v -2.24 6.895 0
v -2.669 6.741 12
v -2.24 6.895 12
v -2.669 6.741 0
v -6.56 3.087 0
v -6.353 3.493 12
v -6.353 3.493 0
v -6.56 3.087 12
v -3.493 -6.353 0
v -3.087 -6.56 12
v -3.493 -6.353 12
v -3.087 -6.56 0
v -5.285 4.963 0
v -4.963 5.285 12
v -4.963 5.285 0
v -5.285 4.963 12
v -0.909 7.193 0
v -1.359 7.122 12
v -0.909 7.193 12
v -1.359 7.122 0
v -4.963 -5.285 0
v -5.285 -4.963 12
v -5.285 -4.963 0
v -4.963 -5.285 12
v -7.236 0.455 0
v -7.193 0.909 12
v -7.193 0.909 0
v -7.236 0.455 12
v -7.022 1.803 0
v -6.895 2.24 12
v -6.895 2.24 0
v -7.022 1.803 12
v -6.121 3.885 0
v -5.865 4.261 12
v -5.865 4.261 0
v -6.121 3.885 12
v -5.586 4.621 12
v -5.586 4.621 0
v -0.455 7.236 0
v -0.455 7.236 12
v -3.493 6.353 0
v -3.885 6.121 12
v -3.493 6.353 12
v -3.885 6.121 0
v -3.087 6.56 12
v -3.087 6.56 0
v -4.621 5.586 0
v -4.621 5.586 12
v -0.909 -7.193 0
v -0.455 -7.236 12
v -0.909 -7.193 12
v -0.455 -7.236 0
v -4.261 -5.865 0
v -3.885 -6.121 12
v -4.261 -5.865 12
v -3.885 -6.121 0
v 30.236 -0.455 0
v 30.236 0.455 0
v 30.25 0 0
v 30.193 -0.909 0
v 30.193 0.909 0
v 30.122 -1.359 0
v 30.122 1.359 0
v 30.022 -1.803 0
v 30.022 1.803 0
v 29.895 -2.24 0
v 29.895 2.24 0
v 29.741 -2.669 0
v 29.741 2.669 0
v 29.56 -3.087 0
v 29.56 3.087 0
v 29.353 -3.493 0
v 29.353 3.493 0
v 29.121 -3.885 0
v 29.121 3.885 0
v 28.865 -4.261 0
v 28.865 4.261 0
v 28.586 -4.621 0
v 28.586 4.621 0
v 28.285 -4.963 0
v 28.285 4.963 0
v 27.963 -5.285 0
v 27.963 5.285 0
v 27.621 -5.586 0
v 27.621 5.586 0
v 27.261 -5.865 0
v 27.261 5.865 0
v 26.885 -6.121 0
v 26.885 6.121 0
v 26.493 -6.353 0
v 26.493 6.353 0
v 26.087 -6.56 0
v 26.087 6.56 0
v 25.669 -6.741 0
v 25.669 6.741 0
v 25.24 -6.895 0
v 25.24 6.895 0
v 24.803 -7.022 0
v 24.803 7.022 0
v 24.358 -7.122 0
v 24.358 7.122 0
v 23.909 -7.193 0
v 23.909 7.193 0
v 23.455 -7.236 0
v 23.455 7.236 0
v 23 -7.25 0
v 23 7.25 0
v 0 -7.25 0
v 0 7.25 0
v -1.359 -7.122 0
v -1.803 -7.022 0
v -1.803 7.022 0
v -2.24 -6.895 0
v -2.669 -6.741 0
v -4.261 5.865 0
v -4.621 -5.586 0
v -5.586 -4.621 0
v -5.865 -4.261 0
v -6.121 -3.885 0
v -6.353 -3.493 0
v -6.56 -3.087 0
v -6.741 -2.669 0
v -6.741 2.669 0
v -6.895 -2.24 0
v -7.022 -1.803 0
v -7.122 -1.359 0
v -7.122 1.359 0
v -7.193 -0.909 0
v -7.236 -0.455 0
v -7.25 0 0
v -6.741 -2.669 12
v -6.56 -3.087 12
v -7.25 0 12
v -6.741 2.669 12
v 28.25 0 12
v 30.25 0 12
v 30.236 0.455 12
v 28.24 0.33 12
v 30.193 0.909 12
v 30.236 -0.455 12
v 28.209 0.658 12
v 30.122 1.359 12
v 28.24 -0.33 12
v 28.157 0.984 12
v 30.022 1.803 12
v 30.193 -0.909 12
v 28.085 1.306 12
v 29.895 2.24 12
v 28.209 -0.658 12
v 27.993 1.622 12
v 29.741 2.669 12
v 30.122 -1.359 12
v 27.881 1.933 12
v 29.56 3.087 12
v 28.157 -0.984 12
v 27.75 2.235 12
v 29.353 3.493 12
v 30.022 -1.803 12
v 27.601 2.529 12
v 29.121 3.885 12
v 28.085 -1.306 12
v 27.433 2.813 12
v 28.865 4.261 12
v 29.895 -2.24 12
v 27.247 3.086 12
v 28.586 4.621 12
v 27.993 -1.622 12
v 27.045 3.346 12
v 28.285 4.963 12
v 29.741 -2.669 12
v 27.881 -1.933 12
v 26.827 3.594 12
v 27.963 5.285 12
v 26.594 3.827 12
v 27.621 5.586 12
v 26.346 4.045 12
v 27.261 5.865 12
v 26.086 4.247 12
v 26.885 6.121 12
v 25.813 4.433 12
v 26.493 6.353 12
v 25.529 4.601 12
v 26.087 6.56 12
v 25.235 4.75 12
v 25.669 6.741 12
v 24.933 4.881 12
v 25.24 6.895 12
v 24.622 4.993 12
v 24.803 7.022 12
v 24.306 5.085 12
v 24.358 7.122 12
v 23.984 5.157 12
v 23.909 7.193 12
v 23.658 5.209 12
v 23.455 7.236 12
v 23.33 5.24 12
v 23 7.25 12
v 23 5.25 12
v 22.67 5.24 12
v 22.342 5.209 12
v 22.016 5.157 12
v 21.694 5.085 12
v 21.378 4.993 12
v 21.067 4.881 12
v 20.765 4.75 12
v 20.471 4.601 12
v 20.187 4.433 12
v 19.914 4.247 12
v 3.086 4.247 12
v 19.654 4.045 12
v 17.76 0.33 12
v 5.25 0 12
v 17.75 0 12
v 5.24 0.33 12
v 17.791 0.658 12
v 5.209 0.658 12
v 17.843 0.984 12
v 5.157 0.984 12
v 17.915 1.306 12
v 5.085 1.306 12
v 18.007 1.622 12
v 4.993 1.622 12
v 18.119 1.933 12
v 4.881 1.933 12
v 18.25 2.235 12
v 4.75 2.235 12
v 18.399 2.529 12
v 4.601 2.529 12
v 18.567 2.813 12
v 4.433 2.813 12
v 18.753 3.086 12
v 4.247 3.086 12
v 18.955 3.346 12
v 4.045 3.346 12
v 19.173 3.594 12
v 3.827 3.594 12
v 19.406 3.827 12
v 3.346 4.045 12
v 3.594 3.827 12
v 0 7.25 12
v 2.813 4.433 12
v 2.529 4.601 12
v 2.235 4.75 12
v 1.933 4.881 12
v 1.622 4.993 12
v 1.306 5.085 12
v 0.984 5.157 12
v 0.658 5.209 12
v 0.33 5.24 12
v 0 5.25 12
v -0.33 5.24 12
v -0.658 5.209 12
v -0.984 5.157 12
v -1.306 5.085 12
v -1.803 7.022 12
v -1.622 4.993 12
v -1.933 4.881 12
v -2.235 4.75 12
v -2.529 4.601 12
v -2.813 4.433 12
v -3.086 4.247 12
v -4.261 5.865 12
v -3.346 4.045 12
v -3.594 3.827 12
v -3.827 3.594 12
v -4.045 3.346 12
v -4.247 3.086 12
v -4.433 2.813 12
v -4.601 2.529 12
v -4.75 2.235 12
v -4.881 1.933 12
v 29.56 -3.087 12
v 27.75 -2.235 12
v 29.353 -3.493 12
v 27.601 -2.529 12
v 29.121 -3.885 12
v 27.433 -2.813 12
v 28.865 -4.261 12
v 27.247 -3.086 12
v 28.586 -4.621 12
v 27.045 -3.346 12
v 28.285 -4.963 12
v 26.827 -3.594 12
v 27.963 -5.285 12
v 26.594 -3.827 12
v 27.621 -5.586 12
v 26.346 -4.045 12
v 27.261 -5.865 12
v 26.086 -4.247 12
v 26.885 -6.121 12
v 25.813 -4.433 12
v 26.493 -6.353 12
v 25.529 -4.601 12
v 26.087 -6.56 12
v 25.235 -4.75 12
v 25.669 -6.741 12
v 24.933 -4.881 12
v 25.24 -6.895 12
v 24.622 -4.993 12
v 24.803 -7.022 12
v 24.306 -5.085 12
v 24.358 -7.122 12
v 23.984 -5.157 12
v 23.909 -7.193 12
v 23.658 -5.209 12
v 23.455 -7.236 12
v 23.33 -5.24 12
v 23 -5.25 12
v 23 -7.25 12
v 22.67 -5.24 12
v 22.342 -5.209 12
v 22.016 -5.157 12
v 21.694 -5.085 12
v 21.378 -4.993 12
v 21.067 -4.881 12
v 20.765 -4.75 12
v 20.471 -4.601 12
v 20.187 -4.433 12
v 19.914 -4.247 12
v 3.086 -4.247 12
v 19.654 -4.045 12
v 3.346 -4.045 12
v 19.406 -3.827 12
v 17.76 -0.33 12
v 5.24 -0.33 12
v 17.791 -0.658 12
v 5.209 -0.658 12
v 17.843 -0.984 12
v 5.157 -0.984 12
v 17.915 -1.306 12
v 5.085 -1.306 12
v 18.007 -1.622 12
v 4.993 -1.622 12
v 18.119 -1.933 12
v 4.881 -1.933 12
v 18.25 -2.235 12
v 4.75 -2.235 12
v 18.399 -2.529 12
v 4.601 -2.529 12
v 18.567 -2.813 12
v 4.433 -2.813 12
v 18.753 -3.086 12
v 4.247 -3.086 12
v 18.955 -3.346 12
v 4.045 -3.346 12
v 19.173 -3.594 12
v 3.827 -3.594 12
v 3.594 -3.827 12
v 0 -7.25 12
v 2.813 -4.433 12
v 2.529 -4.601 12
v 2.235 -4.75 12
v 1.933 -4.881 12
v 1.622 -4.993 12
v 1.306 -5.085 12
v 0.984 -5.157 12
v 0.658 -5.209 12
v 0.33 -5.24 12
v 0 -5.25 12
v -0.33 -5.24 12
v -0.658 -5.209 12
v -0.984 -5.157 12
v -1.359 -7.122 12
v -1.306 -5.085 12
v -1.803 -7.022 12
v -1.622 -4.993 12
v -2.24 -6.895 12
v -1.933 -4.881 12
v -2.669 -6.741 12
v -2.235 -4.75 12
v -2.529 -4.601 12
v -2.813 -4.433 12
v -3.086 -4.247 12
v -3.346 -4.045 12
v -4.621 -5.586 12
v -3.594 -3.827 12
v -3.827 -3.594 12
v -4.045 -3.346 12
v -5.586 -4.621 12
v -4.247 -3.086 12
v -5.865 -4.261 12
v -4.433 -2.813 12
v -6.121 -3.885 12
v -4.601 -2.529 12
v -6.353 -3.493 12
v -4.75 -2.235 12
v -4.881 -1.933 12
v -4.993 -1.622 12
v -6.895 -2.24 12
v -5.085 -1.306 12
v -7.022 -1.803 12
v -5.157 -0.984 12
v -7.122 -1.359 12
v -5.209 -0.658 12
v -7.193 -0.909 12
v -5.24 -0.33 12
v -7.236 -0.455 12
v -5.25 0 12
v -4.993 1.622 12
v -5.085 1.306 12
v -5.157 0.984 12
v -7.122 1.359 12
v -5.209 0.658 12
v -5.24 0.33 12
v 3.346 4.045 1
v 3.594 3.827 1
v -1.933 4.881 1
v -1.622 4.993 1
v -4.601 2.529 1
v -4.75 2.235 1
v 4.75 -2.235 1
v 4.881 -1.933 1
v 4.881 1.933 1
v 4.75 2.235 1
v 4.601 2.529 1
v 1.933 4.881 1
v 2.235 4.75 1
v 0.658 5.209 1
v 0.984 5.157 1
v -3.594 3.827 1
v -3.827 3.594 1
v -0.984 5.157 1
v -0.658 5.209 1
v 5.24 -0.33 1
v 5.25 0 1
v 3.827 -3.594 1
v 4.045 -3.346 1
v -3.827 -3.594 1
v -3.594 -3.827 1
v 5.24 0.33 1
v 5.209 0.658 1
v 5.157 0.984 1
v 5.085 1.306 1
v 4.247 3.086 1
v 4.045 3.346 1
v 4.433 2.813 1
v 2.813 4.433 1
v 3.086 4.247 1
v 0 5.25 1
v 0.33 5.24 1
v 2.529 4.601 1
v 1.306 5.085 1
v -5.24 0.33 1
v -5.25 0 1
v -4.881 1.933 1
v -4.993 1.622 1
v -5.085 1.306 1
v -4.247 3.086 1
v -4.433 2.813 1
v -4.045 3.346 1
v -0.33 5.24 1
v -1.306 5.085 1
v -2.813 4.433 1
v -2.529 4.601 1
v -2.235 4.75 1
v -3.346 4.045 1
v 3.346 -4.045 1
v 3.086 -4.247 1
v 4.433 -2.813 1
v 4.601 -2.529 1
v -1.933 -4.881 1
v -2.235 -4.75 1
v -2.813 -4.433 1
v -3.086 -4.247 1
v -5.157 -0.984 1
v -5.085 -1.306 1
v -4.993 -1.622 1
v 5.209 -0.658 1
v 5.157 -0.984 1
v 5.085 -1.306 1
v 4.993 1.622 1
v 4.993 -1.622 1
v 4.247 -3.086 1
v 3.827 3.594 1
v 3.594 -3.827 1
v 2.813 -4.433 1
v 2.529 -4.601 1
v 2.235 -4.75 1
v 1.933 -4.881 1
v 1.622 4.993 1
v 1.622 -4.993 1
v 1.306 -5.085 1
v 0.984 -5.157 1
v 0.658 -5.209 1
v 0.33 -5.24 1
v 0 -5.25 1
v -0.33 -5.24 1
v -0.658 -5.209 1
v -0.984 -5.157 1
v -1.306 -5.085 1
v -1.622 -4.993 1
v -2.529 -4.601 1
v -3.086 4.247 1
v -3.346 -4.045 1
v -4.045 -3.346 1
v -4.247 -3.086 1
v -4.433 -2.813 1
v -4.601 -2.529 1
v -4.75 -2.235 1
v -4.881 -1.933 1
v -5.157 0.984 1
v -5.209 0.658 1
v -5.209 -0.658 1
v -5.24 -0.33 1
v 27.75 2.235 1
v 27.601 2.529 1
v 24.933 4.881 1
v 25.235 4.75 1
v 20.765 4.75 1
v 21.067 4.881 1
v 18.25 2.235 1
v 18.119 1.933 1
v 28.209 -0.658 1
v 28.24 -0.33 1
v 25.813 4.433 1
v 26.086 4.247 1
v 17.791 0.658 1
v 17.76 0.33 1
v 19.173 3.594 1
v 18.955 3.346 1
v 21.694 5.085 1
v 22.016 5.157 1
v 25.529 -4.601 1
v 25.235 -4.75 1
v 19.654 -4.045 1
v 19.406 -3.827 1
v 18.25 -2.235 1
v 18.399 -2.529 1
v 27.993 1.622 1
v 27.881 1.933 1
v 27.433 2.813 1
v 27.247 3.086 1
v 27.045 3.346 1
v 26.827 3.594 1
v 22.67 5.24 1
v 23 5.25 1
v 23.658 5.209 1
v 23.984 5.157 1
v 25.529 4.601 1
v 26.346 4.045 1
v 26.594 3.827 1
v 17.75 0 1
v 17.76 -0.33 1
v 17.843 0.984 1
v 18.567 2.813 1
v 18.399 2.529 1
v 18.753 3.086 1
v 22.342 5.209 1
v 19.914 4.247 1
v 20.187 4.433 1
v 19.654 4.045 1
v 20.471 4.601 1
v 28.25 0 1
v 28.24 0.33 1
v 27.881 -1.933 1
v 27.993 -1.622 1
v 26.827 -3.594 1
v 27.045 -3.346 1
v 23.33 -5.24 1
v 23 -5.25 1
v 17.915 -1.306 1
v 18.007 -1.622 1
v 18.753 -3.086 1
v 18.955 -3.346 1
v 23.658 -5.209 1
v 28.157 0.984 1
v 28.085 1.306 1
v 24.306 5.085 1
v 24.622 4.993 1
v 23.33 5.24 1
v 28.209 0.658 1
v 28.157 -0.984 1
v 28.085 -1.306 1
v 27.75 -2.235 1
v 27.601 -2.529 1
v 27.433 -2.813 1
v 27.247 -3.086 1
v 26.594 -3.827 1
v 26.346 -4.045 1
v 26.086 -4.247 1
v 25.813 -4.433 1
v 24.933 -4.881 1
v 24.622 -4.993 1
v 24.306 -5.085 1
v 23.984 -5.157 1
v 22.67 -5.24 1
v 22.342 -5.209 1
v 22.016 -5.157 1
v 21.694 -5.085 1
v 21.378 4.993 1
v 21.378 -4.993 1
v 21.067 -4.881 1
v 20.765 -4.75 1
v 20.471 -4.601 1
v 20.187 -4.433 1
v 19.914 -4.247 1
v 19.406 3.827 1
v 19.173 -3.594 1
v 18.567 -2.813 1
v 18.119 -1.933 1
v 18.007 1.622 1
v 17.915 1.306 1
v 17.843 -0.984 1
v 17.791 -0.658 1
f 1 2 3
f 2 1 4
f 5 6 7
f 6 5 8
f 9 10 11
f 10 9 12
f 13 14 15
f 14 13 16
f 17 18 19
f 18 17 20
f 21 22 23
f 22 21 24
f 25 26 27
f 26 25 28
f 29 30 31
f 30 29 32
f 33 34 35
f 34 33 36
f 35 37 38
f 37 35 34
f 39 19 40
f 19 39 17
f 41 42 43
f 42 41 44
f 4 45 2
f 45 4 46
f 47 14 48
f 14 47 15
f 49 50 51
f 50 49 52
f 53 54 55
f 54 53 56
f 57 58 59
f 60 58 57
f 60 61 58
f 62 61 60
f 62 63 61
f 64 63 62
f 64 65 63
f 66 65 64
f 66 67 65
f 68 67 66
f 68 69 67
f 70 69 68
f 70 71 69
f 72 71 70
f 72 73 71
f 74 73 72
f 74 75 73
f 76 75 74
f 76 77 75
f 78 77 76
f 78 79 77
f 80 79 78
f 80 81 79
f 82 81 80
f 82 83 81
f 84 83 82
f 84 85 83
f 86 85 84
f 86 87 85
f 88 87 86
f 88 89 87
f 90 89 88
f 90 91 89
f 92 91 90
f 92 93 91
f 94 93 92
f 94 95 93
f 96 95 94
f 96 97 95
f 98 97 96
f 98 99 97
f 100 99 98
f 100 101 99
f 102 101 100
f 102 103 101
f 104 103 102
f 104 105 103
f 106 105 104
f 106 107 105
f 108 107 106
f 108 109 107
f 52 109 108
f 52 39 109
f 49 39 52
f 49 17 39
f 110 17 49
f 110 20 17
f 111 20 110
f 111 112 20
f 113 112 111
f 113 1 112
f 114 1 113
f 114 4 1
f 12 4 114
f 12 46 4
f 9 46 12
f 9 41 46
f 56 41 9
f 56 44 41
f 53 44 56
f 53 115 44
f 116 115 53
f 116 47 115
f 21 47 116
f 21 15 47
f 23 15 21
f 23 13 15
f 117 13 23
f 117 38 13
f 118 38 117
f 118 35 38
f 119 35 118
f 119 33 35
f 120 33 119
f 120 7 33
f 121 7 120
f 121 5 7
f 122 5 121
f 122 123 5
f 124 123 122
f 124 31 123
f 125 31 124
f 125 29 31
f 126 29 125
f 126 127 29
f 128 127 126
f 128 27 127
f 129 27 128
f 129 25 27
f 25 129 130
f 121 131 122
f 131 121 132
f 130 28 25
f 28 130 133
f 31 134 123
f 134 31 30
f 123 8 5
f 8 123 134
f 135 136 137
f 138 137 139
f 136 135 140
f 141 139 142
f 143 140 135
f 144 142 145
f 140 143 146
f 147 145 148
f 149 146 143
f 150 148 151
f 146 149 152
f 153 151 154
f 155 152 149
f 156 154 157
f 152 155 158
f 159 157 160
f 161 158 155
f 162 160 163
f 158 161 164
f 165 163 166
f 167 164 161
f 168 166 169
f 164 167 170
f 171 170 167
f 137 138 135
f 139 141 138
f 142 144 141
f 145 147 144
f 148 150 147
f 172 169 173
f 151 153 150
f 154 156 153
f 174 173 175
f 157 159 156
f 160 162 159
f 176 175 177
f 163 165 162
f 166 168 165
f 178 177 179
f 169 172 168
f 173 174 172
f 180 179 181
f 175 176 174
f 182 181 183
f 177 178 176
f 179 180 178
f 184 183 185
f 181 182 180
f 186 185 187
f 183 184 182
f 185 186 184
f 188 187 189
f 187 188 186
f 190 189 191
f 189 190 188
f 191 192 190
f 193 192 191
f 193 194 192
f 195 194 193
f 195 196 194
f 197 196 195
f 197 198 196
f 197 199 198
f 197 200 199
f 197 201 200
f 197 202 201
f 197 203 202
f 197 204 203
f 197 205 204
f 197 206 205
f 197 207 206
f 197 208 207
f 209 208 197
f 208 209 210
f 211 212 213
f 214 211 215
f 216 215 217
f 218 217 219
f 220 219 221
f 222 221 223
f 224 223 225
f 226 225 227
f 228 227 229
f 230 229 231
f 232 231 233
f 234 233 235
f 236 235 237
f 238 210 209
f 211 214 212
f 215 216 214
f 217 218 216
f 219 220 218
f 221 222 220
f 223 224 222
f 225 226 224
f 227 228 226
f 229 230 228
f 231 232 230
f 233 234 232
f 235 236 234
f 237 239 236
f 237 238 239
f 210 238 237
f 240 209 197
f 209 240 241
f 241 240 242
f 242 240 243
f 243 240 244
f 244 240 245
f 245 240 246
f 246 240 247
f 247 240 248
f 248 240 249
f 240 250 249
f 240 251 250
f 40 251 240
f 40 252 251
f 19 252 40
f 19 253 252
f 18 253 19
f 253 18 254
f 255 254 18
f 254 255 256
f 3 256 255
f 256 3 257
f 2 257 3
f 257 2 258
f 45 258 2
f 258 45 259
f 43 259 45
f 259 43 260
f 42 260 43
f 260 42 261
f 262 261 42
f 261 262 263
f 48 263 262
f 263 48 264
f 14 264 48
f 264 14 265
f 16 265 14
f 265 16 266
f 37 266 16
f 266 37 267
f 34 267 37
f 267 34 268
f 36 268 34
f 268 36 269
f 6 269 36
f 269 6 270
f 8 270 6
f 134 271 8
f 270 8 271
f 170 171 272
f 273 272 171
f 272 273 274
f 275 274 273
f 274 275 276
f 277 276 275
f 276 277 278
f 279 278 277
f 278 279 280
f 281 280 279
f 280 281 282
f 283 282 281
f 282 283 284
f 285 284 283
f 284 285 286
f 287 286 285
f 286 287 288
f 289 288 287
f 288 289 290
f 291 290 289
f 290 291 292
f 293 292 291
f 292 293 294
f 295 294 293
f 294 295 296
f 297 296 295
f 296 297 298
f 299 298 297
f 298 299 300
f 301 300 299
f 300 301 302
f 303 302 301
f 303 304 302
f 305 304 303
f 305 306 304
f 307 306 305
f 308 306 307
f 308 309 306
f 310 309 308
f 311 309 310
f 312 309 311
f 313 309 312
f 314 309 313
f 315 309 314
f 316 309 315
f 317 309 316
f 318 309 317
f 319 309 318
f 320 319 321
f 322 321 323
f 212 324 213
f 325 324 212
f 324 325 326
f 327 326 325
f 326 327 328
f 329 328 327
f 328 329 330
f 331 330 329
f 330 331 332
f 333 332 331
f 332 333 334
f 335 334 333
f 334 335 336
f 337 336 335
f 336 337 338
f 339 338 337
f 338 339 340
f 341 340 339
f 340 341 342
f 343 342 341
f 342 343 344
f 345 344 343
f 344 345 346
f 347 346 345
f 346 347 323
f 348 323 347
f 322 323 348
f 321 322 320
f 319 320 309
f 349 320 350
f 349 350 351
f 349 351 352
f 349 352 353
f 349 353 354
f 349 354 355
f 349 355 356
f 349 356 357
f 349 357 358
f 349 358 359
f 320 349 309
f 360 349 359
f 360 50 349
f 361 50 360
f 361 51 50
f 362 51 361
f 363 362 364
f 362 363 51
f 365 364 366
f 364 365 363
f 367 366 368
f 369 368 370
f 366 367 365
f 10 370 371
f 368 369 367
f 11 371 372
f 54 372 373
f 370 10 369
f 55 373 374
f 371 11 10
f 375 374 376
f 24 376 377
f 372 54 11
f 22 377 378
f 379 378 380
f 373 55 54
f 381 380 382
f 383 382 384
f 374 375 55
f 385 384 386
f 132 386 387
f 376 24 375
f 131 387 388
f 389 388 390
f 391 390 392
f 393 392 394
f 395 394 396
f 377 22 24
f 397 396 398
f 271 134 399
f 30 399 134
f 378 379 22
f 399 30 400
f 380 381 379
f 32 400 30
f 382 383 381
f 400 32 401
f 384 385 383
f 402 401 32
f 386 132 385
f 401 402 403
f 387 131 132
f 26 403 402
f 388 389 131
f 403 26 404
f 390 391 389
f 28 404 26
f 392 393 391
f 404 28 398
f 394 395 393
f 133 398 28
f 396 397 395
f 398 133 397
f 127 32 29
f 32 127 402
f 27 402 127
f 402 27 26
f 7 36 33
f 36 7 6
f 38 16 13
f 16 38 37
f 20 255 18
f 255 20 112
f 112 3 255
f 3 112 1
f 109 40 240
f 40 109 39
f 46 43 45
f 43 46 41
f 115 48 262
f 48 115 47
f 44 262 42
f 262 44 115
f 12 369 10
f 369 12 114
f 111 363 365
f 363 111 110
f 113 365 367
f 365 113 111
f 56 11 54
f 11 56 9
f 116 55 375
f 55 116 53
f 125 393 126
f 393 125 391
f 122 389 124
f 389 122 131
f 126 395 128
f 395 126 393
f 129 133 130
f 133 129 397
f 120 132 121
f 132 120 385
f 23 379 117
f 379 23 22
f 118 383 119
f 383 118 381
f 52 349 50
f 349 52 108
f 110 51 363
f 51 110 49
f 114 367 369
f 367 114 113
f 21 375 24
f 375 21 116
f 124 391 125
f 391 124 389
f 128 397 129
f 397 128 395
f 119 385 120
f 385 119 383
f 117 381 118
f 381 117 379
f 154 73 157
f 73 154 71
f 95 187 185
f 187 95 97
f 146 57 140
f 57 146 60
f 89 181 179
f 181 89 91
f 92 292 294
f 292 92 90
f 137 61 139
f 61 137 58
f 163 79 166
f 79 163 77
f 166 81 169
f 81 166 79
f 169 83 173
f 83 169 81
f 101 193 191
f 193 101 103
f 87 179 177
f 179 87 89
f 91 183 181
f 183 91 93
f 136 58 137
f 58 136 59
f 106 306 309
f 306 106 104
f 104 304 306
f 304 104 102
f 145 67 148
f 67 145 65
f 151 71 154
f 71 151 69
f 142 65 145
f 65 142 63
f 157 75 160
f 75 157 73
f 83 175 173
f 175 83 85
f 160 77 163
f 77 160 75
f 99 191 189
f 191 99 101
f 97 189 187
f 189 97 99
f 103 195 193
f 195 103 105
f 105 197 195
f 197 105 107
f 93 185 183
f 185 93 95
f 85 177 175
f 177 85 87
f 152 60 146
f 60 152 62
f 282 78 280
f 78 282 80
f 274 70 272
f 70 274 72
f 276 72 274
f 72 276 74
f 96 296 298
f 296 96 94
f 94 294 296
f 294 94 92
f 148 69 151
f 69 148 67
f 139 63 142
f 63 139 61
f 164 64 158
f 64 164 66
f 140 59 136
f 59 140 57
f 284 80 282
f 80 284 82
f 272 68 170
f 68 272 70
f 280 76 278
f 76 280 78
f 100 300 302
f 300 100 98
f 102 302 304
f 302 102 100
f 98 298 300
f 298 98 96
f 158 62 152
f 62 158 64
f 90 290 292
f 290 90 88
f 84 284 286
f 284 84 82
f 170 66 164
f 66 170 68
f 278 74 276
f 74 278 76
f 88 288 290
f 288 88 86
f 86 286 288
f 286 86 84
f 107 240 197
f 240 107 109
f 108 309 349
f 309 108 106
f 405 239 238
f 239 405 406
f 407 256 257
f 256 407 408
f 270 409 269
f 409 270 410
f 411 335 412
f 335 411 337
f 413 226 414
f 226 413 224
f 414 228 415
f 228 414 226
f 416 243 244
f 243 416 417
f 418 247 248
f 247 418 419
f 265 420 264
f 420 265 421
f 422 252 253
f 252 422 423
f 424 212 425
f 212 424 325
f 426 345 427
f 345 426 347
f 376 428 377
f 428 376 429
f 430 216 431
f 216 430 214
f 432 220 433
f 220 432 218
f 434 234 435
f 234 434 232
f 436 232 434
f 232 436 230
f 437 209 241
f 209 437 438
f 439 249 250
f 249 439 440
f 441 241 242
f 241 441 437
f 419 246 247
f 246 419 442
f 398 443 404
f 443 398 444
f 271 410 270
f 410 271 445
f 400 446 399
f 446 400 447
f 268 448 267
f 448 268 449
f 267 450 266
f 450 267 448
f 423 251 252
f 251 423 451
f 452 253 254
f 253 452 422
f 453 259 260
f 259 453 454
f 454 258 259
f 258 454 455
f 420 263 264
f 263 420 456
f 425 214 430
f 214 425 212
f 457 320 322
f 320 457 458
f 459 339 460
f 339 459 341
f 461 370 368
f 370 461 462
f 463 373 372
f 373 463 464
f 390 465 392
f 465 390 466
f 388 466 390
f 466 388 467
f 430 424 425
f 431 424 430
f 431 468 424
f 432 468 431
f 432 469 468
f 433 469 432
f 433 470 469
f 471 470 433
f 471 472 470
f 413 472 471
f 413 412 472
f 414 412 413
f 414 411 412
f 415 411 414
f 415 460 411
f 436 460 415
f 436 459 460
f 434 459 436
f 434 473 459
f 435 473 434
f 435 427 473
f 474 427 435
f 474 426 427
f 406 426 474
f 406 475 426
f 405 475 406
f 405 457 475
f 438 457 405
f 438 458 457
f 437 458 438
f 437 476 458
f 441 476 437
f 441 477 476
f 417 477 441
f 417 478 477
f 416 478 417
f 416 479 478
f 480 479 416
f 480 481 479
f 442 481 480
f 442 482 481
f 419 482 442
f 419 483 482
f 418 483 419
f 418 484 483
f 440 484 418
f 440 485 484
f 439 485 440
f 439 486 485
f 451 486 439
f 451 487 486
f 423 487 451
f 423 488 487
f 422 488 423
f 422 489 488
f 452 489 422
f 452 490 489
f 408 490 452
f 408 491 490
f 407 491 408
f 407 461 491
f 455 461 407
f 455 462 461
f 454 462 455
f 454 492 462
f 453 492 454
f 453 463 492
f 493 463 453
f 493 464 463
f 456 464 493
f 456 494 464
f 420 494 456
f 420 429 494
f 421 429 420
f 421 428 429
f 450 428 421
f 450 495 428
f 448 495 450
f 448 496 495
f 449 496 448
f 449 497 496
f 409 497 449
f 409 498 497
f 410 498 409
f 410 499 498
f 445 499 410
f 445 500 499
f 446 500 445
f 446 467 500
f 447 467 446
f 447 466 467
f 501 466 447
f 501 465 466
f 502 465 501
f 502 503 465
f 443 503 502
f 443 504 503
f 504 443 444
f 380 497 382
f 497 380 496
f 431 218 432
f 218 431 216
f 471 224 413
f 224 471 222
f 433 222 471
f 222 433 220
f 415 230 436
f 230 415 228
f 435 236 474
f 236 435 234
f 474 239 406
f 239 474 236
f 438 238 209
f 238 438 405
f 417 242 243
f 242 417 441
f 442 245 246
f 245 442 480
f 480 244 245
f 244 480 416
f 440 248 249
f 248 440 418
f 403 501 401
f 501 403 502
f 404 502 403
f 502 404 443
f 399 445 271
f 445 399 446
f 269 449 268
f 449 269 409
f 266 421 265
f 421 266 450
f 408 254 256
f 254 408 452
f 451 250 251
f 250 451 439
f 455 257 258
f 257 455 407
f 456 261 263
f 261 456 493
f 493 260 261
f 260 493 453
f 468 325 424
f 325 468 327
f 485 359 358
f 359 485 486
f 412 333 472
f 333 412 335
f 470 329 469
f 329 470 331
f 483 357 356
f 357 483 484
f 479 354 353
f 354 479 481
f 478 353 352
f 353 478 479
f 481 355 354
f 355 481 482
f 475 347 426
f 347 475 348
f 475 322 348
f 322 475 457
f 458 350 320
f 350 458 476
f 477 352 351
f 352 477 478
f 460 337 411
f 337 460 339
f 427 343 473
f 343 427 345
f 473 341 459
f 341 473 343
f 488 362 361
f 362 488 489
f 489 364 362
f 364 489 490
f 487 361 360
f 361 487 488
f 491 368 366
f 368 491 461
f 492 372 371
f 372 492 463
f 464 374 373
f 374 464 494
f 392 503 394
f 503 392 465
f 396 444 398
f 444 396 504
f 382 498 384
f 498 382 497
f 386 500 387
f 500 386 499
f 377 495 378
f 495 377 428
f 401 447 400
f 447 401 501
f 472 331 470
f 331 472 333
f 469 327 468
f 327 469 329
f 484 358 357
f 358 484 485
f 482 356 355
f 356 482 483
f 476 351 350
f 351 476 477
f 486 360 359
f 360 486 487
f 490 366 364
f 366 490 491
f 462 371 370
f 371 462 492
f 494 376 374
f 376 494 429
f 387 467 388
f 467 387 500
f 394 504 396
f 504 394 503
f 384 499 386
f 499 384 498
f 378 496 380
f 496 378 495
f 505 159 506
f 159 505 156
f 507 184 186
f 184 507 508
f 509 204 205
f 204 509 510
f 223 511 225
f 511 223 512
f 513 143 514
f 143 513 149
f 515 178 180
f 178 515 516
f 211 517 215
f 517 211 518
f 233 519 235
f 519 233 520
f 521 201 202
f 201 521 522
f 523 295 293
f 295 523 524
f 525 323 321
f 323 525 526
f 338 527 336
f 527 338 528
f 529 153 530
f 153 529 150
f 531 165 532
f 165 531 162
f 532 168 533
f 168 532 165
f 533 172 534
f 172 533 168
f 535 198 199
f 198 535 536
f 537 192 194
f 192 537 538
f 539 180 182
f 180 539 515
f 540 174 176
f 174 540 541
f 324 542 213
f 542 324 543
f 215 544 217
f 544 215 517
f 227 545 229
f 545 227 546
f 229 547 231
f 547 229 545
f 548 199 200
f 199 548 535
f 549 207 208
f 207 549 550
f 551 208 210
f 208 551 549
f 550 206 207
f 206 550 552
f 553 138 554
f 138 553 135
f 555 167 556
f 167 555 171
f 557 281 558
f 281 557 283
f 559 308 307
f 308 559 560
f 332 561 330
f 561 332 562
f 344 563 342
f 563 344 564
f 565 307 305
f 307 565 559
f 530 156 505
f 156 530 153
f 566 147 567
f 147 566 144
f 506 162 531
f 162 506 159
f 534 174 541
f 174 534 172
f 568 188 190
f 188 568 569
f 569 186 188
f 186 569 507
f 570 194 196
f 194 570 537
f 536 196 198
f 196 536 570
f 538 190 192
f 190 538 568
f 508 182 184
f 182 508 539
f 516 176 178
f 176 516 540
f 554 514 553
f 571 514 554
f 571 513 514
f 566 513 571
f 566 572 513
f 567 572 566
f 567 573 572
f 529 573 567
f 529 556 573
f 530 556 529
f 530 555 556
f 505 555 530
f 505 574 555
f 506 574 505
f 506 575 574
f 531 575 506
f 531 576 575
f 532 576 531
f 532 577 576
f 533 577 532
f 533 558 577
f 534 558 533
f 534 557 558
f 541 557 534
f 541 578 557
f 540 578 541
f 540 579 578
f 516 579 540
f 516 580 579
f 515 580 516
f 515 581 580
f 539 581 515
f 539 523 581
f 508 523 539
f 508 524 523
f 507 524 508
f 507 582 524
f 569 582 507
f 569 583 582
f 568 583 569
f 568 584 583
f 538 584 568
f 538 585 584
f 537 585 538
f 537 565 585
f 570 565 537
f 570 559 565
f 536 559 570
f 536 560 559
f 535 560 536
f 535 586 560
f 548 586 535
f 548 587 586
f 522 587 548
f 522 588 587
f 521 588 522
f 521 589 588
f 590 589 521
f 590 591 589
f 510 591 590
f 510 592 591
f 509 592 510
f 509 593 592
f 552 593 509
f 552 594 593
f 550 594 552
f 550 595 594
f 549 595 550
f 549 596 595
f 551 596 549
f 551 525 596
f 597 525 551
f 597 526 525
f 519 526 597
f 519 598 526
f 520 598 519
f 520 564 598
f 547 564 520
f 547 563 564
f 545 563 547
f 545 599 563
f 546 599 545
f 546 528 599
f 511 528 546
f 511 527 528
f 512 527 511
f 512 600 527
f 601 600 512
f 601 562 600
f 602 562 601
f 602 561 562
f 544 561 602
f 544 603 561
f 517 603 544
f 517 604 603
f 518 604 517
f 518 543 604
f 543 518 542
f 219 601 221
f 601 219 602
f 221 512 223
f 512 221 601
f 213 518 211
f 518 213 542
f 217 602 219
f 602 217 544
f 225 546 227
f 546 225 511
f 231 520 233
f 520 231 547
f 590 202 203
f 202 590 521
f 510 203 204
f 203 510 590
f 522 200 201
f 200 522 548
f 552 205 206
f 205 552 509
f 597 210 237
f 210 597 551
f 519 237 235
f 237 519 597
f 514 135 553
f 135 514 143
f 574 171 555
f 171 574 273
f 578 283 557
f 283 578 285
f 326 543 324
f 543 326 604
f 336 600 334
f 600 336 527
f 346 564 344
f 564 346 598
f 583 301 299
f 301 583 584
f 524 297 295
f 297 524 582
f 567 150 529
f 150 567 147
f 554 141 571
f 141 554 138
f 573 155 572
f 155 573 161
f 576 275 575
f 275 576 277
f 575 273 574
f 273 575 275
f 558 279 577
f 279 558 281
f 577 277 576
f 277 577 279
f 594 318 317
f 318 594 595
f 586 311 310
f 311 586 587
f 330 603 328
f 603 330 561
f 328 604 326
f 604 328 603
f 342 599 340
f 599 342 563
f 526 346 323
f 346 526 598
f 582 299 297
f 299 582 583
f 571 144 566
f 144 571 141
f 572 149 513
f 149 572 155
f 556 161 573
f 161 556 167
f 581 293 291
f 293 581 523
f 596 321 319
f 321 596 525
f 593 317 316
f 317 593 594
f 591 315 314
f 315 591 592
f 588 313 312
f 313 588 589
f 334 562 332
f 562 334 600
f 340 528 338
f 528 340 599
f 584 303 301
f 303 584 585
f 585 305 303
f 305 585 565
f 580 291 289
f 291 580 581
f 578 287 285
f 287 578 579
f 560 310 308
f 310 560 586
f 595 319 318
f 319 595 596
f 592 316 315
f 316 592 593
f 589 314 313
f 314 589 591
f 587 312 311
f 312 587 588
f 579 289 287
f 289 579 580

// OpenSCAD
$fn=100;
//bottom part
difference(){
    union(){
        cylinder(h=12, d=14.5);
        translate([23,0,0]) cylinder(h=12, d=14.5);
        translate([0,-7.25,0]) cube([23,14.5,12]);
    }
    
    translate([0,0,1]) cylinder(h=11, d=10.5);
    translate([23,0,1]) cylinder(h=11, d=10.5);
}
